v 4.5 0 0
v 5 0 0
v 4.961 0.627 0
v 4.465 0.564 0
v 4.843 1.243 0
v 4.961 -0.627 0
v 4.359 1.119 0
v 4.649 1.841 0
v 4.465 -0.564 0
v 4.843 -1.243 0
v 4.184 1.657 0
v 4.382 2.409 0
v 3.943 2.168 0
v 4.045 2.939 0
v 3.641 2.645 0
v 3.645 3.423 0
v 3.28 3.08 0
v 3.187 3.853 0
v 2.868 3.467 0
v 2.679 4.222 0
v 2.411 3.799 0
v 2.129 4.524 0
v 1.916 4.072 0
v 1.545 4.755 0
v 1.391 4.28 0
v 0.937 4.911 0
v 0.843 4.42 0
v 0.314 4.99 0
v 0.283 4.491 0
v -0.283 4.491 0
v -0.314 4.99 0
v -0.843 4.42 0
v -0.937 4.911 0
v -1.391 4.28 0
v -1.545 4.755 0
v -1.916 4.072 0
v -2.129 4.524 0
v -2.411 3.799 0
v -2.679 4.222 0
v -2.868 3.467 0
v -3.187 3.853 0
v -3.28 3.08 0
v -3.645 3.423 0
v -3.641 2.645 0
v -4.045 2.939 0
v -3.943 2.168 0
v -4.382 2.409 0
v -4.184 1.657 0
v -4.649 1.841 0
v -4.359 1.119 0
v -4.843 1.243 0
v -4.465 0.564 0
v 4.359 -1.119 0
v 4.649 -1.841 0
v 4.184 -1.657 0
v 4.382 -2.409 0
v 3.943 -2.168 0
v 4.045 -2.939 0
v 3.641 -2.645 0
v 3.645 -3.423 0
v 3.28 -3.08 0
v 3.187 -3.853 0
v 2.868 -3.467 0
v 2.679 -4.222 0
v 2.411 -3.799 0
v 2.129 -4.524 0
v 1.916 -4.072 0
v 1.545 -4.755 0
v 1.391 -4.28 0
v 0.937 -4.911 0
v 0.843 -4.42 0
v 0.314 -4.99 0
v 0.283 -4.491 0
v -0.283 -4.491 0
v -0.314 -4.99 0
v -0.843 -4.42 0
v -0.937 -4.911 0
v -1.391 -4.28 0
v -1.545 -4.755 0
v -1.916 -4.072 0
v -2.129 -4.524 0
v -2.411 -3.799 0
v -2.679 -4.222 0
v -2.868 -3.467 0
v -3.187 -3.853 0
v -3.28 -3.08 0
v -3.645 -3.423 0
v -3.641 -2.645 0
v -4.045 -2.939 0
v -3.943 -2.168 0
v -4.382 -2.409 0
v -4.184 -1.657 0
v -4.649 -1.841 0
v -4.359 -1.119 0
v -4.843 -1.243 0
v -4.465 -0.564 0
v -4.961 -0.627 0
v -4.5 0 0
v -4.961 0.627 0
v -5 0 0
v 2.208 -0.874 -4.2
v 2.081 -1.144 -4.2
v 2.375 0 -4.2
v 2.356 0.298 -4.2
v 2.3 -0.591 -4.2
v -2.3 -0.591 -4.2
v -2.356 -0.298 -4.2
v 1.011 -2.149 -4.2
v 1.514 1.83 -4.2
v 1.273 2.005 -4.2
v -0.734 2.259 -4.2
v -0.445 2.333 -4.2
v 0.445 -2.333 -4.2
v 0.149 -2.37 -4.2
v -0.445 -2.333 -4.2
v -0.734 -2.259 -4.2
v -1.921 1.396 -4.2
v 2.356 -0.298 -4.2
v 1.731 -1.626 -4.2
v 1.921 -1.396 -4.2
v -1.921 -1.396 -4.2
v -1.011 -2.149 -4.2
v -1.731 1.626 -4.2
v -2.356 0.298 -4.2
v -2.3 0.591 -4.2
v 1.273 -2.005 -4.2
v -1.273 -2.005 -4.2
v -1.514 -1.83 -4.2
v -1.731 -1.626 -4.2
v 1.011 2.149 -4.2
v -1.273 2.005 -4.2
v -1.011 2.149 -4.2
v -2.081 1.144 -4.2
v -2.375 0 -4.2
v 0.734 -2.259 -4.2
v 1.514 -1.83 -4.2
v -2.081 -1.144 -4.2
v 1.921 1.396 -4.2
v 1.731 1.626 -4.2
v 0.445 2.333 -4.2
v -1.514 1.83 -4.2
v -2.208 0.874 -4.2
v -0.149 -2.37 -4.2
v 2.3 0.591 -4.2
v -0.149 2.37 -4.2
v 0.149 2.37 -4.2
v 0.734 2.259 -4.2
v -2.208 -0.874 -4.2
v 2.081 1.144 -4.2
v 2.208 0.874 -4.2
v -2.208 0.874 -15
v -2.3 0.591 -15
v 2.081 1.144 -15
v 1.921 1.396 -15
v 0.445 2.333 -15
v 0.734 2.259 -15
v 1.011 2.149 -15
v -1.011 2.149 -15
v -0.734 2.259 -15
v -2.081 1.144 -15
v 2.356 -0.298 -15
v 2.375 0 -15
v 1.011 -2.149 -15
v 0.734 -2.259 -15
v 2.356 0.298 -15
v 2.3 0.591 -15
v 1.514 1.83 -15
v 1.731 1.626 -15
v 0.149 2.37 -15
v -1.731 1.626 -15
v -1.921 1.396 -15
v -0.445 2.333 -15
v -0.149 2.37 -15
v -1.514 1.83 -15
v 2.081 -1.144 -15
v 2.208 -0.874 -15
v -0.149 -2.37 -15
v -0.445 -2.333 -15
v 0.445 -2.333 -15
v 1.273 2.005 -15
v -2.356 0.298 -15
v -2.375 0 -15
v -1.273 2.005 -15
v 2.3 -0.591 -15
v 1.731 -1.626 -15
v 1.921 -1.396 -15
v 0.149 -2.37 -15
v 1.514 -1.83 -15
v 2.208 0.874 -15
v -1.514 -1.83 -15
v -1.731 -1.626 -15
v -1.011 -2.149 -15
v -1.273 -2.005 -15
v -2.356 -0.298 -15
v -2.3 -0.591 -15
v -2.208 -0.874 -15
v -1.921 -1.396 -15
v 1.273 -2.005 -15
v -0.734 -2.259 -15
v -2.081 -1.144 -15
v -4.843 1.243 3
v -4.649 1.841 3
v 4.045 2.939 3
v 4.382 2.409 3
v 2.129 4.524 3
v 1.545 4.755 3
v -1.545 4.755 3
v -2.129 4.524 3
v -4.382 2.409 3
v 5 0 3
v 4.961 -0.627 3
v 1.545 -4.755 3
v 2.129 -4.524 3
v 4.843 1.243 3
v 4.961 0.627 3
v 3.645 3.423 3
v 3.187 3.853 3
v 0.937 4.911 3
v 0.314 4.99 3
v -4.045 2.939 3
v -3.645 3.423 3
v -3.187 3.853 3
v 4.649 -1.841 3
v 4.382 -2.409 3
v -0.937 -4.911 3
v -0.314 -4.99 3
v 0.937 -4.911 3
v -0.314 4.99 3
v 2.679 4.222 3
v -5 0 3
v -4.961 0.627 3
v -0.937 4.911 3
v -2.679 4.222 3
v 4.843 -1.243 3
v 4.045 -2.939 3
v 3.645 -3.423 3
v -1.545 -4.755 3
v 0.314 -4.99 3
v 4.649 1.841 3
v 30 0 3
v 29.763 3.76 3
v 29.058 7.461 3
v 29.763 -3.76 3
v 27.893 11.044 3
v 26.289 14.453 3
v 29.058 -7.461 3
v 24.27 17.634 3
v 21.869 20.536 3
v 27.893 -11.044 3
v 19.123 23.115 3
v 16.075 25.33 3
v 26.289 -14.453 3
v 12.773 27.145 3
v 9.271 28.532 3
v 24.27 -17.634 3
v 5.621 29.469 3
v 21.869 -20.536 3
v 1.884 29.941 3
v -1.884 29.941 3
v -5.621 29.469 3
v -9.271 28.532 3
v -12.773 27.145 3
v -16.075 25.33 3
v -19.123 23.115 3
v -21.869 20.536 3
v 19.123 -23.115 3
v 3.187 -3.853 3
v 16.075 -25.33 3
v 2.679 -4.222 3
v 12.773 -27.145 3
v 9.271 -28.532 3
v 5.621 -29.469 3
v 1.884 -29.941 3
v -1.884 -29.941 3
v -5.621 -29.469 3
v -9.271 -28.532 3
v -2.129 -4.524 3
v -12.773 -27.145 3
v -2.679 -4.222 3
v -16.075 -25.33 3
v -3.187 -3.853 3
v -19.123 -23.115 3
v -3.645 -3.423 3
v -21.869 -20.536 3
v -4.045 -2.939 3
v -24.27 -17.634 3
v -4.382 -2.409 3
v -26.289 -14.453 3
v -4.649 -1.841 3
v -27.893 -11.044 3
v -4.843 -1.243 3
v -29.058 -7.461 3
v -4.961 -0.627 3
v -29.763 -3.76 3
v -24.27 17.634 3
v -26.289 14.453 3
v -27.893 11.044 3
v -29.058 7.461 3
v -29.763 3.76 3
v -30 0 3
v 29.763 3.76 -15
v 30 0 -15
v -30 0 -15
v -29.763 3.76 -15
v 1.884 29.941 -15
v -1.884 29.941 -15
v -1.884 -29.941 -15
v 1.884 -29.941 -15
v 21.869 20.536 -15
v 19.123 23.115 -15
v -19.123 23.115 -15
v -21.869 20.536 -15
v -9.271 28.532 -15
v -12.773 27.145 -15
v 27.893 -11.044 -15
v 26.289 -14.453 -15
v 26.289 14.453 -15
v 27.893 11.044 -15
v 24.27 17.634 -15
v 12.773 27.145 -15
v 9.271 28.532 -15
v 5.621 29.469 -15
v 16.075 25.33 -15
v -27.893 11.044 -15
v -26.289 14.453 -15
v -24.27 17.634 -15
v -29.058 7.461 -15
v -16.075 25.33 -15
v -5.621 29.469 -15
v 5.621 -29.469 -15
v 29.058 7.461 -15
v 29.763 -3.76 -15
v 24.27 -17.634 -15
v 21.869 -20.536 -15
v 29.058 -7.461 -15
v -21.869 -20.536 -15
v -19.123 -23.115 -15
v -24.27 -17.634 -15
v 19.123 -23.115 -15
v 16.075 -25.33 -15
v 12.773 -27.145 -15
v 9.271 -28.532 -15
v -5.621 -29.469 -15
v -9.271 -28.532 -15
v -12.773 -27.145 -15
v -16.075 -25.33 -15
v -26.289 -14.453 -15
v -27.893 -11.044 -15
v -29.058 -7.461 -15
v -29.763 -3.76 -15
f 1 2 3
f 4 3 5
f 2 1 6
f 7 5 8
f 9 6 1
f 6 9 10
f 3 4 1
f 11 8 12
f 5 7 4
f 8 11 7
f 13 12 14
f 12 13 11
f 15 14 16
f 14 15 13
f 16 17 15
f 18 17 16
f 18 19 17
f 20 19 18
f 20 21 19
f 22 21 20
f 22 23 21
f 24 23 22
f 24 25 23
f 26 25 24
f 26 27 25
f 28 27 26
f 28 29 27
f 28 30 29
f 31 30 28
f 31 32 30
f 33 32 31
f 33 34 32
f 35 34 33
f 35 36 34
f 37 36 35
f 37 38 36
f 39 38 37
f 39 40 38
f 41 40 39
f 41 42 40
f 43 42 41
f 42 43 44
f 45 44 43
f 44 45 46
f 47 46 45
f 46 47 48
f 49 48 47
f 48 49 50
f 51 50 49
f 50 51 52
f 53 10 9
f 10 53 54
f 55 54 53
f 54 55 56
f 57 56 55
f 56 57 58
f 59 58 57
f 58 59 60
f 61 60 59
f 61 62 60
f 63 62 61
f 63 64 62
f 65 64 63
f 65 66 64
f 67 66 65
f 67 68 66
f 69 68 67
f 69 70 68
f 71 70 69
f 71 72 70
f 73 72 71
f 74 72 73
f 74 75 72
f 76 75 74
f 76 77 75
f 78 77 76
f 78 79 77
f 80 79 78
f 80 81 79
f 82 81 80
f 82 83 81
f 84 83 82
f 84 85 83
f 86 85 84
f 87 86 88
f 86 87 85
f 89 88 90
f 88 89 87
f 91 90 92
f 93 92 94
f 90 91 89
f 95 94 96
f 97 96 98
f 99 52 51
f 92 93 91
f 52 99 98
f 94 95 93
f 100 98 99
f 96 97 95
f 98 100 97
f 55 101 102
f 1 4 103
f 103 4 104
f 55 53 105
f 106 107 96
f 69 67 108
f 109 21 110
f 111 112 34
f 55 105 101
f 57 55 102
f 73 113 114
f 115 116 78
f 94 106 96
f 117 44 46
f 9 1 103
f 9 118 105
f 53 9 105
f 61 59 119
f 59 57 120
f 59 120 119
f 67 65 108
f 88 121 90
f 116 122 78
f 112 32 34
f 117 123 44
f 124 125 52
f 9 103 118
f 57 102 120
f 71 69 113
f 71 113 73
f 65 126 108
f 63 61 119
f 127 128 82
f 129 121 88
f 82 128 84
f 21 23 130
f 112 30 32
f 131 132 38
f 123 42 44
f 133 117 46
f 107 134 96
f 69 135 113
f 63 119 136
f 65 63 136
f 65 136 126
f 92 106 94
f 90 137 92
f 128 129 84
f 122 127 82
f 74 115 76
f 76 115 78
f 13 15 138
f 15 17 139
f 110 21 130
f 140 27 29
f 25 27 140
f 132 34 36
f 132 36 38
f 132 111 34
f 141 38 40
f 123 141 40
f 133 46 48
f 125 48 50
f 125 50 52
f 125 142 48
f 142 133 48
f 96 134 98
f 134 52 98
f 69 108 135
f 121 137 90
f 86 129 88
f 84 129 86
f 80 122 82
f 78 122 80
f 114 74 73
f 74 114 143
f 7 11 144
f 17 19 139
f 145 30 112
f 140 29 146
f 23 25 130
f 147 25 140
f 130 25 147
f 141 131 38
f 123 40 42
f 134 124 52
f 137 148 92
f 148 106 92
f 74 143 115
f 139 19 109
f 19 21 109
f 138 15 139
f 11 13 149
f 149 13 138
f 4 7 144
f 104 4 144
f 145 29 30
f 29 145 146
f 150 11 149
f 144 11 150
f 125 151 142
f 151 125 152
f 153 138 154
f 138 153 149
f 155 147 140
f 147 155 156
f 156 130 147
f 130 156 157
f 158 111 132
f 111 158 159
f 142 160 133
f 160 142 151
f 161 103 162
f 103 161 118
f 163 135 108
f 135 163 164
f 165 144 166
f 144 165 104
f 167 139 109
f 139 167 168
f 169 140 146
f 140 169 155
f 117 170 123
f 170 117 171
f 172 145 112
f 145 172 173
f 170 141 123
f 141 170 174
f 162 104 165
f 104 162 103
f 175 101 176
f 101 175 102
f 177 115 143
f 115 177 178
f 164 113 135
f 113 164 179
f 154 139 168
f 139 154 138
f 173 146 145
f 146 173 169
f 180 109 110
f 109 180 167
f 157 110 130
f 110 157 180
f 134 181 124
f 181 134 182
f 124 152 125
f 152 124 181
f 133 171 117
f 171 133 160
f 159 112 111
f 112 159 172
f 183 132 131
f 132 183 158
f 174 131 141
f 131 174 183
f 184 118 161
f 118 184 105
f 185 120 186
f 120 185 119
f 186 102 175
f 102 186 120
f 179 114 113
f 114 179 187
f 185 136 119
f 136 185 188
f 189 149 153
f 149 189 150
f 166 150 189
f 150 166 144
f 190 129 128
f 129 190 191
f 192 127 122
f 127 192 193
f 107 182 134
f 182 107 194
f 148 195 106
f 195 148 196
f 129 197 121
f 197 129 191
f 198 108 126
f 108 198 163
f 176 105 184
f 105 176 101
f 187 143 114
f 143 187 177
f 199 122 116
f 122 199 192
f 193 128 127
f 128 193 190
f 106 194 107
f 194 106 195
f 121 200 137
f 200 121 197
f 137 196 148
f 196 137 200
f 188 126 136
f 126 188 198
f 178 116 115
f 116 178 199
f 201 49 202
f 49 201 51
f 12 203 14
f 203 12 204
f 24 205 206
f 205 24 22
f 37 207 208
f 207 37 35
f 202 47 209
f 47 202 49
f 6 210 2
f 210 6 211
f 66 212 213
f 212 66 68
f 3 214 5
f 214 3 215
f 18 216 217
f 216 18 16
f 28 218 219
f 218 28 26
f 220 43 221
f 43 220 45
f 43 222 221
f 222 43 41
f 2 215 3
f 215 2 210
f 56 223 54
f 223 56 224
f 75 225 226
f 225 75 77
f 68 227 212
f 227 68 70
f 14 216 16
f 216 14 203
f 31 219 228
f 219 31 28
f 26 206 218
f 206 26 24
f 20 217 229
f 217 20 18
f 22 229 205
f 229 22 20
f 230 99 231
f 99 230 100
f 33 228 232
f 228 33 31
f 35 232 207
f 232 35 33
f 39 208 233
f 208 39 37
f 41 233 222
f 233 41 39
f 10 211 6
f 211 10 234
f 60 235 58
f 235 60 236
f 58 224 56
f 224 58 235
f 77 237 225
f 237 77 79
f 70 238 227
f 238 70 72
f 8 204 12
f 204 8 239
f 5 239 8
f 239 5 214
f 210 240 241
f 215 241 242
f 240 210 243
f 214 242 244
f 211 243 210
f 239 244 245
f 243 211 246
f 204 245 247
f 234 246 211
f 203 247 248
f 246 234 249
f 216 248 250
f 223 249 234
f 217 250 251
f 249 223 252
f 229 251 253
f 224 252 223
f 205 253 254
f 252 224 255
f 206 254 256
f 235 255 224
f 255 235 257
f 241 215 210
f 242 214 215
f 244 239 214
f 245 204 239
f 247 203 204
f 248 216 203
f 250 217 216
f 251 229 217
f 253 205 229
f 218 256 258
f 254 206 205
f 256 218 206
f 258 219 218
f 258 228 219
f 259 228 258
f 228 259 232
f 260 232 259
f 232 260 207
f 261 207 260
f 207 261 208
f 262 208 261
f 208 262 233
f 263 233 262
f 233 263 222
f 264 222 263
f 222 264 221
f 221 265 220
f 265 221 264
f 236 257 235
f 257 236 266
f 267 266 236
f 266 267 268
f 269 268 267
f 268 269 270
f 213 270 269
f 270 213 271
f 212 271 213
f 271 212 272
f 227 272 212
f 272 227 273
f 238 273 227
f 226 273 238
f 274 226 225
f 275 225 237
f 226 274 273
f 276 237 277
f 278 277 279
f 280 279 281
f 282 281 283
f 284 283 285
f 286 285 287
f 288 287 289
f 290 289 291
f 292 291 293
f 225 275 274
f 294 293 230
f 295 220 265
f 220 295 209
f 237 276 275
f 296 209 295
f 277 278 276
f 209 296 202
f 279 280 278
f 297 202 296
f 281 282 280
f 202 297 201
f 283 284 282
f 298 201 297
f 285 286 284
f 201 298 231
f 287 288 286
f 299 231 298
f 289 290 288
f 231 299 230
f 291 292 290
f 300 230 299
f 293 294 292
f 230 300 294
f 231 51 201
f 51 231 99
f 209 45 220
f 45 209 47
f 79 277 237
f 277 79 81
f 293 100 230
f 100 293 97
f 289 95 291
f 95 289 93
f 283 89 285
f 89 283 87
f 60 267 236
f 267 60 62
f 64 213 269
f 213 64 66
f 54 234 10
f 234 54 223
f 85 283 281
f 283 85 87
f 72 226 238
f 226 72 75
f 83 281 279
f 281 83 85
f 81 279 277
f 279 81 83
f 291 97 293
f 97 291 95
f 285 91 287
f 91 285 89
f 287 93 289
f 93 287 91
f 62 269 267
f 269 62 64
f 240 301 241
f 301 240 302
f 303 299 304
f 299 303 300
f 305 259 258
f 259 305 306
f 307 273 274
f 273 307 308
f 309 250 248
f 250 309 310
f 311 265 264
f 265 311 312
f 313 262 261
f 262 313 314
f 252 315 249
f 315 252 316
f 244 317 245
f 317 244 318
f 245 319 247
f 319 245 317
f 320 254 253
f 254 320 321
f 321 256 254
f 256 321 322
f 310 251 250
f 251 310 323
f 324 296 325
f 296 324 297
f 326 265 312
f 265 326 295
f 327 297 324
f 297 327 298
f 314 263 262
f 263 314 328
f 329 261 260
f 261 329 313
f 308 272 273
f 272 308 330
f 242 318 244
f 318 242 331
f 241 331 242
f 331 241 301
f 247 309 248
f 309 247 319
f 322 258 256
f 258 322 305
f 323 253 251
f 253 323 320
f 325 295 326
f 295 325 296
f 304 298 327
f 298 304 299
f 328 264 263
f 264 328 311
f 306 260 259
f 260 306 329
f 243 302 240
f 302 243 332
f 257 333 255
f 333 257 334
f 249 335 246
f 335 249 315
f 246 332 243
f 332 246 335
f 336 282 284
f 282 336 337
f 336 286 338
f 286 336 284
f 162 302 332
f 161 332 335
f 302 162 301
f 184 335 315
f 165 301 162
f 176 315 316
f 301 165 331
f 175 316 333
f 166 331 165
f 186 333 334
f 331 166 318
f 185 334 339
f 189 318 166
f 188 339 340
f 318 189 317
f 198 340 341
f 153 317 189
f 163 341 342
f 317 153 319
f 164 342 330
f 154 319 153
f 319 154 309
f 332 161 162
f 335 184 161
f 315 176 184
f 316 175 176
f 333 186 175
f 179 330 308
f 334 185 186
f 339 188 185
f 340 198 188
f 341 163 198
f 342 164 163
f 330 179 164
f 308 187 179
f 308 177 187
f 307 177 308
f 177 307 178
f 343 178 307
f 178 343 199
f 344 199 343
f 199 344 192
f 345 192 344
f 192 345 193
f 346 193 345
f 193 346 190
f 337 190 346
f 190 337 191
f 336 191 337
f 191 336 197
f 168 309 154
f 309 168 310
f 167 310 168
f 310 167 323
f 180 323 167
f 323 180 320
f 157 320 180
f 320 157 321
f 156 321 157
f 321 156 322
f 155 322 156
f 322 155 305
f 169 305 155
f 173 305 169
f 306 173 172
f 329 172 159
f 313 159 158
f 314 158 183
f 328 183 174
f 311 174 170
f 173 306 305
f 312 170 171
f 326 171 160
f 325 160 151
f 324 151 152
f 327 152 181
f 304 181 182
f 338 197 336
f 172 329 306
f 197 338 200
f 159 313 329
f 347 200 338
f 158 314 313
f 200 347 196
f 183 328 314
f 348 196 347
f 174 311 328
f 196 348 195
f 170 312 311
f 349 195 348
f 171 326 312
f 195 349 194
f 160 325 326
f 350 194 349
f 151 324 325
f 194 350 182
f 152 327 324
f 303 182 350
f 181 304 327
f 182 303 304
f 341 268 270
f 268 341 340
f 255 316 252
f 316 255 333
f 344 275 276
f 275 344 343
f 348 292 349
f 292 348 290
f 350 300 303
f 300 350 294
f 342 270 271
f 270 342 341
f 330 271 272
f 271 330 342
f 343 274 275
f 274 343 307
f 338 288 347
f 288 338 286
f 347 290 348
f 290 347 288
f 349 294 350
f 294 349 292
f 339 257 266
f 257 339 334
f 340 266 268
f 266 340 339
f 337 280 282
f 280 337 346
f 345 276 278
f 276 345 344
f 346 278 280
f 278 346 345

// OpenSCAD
$fn = 50;


difference() {
	union() {
		translate(v = [0, 0, -15.0000000000]) {
			cylinder(h = 18, r = 30.0000000000);
		}
	}
	union() {
		translate(v = [0, 0, 0]) {
			rotate(a = [0, 0, 0]) {
				difference() {
					union() {
						translate(v = [0, 0, -18.0000000000]) {
							cylinder(h = 18, r = 2.2500000000);
						}
						translate(v = [0, 0, -4.2000000000]) {
							cylinder(h = 4.2000000000, r1 = 2.3750000000, r2 = 4.5000000000);
						}
						translate(v = [0, 0, -18.0000000000]) {
							cylinder(h = 18, r = 2.3750000000);
						}
						translate(v = [0, 0, -18.0000000000]) {
							cylinder(h = 18, r = 2.2500000000);
						}
					}
					union();
				}
			}
		}
		#cylinder(h = 3, r = 5.0000000000);
	}
}
